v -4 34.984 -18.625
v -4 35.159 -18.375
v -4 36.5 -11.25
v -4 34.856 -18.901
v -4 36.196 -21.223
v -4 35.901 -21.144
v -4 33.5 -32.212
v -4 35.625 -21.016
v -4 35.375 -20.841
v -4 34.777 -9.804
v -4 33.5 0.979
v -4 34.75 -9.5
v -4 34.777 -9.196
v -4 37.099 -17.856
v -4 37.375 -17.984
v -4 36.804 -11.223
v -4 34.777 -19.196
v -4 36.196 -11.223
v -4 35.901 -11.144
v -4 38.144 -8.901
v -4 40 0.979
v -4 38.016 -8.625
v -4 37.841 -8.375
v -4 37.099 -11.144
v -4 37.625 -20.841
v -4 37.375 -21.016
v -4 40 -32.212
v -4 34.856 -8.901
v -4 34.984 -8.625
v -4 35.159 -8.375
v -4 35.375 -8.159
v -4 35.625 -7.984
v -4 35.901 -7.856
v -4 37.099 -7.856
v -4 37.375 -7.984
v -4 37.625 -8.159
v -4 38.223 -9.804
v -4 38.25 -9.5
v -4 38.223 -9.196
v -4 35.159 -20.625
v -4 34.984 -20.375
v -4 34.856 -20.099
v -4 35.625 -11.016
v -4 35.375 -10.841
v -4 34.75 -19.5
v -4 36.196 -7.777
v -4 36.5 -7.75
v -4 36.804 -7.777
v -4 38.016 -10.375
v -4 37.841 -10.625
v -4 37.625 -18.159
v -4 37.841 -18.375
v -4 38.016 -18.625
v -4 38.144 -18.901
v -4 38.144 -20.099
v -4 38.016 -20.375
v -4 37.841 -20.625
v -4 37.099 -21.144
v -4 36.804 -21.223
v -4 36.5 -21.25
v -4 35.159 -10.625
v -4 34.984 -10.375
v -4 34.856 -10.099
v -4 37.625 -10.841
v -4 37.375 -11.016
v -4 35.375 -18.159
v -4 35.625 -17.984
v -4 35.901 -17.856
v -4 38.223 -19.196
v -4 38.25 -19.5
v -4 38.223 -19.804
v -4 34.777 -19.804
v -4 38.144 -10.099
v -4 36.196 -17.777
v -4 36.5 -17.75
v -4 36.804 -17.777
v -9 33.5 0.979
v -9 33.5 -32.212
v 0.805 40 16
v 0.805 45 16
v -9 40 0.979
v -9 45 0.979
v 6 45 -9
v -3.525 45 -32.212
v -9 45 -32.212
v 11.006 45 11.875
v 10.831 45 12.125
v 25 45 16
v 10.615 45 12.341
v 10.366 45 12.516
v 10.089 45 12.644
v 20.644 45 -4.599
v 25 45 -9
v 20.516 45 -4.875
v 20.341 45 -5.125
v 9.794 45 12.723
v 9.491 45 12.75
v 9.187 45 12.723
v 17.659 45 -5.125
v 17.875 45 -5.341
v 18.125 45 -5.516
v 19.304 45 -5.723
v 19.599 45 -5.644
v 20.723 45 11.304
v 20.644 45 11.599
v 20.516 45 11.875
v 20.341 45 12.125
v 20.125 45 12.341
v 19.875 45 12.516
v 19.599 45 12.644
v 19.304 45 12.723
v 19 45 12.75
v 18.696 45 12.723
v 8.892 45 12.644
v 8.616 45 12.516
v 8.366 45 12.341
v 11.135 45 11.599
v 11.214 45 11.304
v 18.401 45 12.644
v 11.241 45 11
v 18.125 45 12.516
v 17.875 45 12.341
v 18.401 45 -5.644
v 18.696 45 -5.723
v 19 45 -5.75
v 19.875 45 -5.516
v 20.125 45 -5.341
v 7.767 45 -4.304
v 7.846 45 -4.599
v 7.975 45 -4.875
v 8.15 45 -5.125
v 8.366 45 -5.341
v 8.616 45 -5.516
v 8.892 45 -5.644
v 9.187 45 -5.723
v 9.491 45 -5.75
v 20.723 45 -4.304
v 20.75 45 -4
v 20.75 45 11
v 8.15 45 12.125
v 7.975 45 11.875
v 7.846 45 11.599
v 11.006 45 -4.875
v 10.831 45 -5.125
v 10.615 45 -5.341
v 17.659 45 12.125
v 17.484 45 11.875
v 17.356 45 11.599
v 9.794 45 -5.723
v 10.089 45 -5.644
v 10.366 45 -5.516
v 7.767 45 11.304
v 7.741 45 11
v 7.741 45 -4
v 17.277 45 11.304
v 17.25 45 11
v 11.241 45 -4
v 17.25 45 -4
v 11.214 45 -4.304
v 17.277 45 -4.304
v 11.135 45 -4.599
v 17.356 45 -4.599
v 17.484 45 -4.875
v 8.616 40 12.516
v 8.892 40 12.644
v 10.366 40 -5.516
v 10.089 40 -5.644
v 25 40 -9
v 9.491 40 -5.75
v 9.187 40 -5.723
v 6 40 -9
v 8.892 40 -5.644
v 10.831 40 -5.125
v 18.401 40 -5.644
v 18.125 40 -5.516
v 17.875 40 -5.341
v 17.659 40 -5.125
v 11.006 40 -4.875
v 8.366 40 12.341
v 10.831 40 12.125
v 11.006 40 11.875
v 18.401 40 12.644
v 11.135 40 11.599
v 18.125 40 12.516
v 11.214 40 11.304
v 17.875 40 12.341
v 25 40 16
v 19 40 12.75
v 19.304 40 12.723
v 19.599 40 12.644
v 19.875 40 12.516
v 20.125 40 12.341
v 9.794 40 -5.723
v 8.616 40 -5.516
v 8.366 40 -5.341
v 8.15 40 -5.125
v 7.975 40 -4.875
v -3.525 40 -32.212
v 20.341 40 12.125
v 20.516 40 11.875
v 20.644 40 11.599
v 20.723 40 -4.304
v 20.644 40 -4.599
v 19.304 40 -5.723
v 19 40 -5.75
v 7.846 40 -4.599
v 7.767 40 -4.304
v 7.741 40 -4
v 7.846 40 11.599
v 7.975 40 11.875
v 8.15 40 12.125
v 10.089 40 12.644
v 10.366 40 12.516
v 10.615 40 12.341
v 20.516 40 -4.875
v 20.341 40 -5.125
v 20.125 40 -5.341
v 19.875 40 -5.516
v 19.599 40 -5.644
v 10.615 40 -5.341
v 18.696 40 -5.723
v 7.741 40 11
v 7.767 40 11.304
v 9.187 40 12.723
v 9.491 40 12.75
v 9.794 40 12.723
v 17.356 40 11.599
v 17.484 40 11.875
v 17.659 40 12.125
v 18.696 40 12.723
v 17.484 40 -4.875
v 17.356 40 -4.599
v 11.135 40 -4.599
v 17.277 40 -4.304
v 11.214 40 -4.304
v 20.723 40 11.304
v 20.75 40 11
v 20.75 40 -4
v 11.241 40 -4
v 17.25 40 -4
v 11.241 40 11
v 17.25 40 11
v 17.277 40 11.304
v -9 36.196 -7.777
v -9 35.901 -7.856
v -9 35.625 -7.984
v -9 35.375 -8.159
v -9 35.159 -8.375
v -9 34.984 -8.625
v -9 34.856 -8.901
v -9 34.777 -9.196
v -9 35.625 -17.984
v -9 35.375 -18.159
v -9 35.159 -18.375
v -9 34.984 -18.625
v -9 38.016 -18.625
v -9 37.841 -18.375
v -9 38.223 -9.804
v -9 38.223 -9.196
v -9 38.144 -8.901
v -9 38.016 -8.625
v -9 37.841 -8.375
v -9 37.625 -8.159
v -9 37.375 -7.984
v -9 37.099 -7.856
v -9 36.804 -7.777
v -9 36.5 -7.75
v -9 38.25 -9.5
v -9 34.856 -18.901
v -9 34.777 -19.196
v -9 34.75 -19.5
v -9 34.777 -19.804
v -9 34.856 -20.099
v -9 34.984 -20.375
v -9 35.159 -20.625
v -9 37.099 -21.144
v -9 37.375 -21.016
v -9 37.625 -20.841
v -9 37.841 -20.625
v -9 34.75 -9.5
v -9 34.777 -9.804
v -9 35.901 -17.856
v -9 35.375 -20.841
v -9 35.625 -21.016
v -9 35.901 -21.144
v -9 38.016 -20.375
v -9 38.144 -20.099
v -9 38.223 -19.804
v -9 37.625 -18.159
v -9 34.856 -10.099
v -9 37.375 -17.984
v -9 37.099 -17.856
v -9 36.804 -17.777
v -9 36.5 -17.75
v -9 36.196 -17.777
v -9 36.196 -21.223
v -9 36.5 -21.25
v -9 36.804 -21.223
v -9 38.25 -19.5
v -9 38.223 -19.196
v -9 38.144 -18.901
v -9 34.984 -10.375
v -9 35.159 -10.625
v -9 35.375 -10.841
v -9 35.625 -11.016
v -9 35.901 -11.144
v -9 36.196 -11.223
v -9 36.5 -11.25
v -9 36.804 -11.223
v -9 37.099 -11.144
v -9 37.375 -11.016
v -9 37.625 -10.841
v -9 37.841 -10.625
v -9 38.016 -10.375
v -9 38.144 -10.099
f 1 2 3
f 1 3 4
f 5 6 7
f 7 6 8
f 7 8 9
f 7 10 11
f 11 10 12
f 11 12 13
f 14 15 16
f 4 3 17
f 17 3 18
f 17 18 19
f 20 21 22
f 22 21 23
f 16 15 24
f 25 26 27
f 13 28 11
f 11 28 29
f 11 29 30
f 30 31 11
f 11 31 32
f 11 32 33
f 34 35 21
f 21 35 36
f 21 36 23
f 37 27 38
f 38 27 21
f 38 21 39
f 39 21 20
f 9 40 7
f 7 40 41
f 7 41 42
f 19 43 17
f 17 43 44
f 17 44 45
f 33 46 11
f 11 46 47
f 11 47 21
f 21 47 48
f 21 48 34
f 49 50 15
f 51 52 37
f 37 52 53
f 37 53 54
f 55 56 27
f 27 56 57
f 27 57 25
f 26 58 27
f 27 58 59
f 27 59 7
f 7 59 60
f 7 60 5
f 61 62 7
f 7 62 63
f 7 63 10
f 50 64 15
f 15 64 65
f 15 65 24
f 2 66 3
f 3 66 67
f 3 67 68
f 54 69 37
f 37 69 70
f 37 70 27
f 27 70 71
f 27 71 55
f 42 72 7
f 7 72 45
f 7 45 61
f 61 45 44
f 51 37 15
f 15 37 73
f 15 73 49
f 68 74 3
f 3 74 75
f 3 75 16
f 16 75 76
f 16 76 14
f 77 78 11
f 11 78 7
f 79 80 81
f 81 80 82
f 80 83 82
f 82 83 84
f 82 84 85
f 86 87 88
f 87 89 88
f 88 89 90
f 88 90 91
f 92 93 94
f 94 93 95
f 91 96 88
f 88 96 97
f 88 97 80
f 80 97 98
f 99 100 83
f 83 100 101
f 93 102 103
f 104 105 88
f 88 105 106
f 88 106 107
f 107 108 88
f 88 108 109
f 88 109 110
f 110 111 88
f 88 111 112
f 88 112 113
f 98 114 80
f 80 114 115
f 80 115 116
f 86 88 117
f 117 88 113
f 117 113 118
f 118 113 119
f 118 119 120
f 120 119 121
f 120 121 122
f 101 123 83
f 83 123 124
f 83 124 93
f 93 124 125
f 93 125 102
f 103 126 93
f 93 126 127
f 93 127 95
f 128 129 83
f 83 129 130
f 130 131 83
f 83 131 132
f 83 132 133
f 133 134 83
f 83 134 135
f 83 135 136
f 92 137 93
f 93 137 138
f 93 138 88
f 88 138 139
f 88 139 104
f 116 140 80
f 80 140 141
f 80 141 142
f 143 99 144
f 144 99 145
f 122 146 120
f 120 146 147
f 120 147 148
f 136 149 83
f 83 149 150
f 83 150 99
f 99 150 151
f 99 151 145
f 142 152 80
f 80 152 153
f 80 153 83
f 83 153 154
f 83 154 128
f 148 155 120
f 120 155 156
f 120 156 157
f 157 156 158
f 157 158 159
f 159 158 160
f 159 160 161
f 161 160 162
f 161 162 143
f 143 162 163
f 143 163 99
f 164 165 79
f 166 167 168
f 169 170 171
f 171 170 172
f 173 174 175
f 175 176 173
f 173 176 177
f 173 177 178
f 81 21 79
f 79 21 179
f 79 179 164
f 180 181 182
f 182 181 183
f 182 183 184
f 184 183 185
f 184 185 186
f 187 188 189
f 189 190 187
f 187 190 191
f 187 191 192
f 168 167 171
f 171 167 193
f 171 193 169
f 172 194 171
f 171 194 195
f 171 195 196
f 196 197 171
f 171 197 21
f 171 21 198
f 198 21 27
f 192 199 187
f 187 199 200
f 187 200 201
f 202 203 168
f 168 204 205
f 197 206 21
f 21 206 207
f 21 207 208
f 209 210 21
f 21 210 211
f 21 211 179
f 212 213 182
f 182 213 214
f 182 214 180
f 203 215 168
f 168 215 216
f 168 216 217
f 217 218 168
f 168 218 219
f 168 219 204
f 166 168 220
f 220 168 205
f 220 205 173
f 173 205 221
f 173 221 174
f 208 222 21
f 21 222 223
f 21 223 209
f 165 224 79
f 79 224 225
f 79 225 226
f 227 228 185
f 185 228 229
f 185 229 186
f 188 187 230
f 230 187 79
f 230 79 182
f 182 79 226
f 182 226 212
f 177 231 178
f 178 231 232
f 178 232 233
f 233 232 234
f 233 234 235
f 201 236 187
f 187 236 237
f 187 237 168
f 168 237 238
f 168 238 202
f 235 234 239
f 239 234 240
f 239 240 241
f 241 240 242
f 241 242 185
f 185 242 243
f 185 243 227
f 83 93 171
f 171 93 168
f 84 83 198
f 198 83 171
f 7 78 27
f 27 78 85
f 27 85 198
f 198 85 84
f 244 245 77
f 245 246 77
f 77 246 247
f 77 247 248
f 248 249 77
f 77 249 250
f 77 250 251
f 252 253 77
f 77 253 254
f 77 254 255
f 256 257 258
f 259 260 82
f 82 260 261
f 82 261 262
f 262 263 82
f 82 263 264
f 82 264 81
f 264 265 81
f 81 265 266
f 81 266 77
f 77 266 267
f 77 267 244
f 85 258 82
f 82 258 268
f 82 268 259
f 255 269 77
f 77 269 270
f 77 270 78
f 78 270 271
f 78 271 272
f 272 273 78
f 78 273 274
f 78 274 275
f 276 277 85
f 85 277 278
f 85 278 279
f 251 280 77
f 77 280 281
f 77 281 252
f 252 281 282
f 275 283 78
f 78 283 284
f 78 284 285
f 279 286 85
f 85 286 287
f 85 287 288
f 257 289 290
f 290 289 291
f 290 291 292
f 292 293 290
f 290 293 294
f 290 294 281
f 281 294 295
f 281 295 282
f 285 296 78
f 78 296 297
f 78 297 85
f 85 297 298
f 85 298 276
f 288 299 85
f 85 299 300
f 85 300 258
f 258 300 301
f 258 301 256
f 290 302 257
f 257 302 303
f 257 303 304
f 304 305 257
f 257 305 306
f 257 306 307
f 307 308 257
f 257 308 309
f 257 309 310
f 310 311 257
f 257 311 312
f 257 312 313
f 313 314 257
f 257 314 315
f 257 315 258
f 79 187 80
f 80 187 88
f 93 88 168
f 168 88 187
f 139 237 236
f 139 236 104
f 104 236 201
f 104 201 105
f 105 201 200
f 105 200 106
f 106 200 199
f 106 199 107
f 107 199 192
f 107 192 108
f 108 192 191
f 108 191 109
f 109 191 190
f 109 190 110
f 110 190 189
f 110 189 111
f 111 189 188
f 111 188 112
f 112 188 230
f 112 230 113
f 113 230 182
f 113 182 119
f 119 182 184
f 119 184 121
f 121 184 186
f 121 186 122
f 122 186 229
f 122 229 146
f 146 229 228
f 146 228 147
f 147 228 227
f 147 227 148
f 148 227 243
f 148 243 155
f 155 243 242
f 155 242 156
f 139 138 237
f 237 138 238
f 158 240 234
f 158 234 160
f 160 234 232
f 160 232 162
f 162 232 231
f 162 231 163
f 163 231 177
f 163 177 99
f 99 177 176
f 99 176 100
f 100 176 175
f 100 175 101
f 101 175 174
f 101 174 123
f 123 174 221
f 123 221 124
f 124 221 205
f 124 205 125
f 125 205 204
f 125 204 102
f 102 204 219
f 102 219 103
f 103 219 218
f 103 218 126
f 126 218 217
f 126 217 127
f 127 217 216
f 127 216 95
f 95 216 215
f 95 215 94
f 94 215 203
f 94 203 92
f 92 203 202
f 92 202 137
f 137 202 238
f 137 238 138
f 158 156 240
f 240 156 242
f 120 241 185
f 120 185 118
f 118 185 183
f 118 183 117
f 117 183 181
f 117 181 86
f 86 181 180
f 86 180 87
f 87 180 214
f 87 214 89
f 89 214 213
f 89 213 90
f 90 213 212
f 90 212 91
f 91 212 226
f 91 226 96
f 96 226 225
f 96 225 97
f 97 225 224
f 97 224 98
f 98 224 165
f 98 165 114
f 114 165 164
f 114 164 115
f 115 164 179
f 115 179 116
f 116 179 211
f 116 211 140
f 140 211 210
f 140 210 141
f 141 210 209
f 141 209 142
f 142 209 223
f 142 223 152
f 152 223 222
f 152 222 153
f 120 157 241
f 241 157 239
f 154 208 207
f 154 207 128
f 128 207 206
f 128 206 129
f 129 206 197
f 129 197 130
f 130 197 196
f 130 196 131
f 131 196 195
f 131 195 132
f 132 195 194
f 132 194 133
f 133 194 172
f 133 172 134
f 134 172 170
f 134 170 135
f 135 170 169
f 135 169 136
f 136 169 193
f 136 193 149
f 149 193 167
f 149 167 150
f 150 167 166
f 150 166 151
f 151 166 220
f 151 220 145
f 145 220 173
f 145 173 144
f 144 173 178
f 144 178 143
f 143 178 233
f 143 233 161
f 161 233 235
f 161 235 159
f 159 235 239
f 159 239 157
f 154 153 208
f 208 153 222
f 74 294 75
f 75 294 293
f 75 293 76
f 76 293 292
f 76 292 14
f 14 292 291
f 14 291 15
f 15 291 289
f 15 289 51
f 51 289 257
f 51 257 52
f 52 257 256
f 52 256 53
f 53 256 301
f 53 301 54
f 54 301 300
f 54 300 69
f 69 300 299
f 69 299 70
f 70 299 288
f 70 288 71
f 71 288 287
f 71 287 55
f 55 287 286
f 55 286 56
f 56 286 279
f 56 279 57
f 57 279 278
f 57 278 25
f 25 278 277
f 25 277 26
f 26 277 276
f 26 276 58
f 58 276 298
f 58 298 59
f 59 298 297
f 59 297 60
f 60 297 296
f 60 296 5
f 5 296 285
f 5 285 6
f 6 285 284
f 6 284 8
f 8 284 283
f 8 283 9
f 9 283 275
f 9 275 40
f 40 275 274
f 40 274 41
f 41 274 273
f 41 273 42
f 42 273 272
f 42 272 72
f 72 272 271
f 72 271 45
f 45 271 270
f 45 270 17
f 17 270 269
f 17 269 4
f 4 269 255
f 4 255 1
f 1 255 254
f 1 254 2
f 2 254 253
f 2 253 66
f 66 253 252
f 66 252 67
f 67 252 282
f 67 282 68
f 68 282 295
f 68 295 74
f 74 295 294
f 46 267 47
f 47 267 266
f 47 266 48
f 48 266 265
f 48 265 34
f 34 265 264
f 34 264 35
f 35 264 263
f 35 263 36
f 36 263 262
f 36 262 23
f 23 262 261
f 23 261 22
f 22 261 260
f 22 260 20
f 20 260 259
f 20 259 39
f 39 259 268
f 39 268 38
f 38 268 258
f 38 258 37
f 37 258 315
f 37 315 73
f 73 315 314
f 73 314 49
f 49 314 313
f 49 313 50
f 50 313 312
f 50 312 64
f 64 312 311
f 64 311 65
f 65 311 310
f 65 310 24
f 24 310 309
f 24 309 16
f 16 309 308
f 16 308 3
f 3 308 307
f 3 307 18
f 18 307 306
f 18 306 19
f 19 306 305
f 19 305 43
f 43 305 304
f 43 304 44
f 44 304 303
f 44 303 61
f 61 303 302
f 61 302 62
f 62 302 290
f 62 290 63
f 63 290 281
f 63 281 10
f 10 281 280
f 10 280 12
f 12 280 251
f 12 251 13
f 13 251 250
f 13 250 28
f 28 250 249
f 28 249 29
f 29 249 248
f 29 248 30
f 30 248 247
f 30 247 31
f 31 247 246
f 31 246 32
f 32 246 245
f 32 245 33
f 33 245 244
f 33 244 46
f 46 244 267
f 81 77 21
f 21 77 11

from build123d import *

# Parameters (mm, degrees)
ESTRUSIONE_ESTRUSIONE8_DEPTH = 5
SCHIZZO19_W                  = 5
SCHIZZO19_H                  = 48.212351189
ESTRUSIONE_ESTRUSIONE9_DEPTH = 6.5
SCHIZZO20_R                  = 1.75
TAGLIO_ESTRUSIONE9_DEPTH     = 6
TAGLIO_ESTRUSIONE13_DEPTH    = 21
SCHIZZO26_W                  = 5
SCHIZZO26_H                  = 6.5
TAGLIO_ESTRUSIONE15_DEPTH    = 21


with BuildPart() as part:
    # Schizzo18 → Estrusione-Estrusione8 (new body)
    with BuildSketch(Plane(origin=(0, 40, 0), x_dir=(1, 0, 0), z_dir=(0, 1, 0))):
        Polygon((25, -16), (-9, -16), (-9, 32.212351189), (-3.52472969, 32.212351189), (6, 9), (25, 9), align=None)
        with BuildLine():
            Line((17.25, -11), (17.25, 4))
            ThreePointArc((17.25, 4), (19, 5.75), (20.75, 4))
            Line((20.75, 4), (20.75, -11))
            ThreePointArc((20.75, -11), (19, -12.75), (17.25, -11))
        make_face(mode=Mode.SUBTRACT)
        with BuildLine():
            Line((7.74056589, -11), (7.74056589, 4))
            ThreePointArc((7.74056589, 4), (9.49056589, 5.75), (11.24056589, 4))
            Line((11.24056589, 4), (11.24056589, -11))
            ThreePointArc((11.24056589, -11), (9.49056589, -12.75), (7.74056589, -11))
        make_face(mode=Mode.SUBTRACT)
    extrude(amount=ESTRUSIONE_ESTRUSIONE8_DEPTH)

    # Schizzo19 → Estrusione-Estrusione9 (add)
    with BuildSketch(Plane.XZ.offset(-40)):
        with Locations((-6.5, -8.106175595)):
            Rectangle(SCHIZZO19_W, SCHIZZO19_H)
    extrude(amount=ESTRUSIONE_ESTRUSIONE9_DEPTH)

    # Schizzo20 → Taglio-Estrusione9 (cut)
    with BuildSketch(Plane.ZY.offset(9)):
        with Locations((-19.5, 36.5)):
            Circle(SCHIZZO20_R)
        with Locations((-9.5, 36.5)):
            Circle(SCHIZZO20_R)
    extrude(amount=-TAGLIO_ESTRUSIONE9_DEPTH, mode=Mode.SUBTRACT)

    # Schizzo24 → Taglio-Estrusione13 (cut)
    with BuildSketch(Plane(origin=(0, 45, 0), x_dir=(1, 0, 0), z_dir=(0, 1, 0))):
        Polygon((0.805132443, -16), (-9, -0.979024983), (-9, -16), align=None)
    extrude(amount=-TAGLIO_ESTRUSIONE13_DEPTH, mode=Mode.SUBTRACT)

    # Schizzo26 → Taglio-Estrusione15 (cut)
    with BuildSketch(Plane.XY.offset(0.979024983)):
        with Locations((-6.5, 36.75)):
            Rectangle(SCHIZZO26_W, SCHIZZO26_H)
    extrude(amount=TAGLIO_ESTRUSIONE15_DEPTH, mode=Mode.SUBTRACT)


solid = part.part
